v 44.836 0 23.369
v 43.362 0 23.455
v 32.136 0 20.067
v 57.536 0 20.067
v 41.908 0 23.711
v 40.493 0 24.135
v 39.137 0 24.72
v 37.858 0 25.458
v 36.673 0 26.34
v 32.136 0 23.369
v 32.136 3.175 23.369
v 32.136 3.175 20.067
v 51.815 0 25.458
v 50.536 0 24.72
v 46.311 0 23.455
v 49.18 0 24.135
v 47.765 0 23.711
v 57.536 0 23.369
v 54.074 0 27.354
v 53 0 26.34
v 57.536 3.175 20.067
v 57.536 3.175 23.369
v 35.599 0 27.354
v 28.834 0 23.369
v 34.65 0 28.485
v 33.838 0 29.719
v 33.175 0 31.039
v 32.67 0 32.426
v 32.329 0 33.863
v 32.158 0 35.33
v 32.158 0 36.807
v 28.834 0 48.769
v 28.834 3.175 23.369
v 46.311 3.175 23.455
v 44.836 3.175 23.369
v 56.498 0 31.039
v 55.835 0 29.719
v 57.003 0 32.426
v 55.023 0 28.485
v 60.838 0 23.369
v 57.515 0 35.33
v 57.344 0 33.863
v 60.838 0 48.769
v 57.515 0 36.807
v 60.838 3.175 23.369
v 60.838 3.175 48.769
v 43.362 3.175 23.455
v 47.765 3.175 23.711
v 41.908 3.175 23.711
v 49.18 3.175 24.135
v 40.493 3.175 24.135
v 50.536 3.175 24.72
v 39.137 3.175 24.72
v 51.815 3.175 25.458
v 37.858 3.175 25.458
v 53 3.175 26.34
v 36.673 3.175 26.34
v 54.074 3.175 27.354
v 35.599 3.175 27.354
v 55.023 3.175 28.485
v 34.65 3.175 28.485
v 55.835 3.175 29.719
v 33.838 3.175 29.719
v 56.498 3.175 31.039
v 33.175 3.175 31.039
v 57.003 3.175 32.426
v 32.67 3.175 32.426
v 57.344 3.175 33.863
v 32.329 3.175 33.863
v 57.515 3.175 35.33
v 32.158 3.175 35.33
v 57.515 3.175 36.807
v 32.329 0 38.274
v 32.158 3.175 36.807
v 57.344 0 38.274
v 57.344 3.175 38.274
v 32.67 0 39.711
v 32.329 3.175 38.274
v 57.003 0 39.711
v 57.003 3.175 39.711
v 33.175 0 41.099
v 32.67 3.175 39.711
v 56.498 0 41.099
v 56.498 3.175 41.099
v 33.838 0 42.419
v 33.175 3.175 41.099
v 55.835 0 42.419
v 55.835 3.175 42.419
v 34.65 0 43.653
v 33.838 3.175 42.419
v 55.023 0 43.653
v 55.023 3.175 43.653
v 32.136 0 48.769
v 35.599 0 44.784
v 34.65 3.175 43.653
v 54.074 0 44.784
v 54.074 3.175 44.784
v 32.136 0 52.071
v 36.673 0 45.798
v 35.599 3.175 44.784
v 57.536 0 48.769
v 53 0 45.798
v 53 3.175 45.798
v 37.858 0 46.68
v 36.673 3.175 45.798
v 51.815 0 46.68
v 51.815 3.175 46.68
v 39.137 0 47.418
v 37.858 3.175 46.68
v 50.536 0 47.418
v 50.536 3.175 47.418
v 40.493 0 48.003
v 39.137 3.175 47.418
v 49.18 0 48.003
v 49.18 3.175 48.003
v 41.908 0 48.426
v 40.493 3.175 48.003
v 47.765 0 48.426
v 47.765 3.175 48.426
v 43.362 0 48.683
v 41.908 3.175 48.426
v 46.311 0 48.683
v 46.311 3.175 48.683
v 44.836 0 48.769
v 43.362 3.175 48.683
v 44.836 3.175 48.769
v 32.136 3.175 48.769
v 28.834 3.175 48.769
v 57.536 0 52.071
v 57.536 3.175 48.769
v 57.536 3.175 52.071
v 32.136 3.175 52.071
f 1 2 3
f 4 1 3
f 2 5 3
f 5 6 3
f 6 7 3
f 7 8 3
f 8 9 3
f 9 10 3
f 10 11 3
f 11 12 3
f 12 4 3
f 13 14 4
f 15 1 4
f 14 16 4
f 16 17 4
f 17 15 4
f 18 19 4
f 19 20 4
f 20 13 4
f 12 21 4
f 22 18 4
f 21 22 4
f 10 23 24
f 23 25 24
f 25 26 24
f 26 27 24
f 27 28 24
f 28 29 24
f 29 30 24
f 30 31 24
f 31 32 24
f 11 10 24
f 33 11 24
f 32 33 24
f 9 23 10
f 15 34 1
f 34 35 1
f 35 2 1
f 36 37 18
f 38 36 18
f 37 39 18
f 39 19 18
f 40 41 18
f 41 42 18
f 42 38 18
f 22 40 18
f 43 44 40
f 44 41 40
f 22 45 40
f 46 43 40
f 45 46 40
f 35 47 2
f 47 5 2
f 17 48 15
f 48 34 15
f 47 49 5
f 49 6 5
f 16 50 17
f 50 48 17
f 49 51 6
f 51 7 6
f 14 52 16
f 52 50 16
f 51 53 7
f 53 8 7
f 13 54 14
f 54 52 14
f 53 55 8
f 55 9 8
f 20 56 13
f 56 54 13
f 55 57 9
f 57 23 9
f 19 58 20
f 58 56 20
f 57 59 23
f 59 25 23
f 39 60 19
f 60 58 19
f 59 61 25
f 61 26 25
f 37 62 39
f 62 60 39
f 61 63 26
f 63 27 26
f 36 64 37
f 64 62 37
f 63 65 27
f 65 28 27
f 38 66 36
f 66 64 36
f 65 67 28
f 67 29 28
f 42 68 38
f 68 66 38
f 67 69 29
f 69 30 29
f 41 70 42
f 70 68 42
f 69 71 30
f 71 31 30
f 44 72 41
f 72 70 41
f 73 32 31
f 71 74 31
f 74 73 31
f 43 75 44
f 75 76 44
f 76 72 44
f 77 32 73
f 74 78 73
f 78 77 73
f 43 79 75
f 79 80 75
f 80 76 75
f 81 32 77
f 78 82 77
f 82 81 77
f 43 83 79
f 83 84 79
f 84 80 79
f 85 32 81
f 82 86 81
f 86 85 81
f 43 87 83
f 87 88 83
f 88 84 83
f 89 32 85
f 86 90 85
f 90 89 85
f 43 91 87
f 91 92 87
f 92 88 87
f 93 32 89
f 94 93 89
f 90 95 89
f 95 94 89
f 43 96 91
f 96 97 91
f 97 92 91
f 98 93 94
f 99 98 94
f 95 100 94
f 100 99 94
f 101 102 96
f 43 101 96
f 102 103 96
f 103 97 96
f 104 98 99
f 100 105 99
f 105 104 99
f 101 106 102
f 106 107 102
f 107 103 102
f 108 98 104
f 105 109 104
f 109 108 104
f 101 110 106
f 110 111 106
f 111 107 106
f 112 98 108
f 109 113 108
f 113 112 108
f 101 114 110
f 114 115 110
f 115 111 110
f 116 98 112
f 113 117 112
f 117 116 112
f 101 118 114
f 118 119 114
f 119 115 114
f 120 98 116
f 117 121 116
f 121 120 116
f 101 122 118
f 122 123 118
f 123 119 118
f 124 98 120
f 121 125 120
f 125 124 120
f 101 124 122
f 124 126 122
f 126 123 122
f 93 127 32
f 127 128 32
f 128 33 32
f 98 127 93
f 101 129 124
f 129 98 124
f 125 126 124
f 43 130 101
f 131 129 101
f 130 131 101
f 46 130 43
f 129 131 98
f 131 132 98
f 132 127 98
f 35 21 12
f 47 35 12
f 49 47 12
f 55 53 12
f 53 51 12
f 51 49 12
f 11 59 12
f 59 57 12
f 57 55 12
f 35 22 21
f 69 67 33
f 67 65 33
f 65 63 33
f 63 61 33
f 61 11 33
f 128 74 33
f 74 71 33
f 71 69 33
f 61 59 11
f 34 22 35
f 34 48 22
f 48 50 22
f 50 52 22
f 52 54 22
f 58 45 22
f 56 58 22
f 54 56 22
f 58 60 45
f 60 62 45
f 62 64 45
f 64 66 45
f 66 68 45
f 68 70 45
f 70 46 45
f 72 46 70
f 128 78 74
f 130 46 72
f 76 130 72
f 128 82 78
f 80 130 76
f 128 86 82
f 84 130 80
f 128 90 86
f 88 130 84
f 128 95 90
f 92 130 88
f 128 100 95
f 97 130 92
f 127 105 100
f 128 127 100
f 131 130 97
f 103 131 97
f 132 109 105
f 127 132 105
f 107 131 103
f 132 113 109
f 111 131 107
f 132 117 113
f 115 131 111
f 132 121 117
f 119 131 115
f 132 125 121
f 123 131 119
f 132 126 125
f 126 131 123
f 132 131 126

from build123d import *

# Parameters (mm, degrees)
SKETCH2_W                    = 304.8
SKETCH2_H                    = 304.8
BOSS_EXTRUDE1_DEPTH          = 3.175
CUT_EXTRUDE1_DEPTH           = 348.408852067
CUT_EXTRUDE1_DEPTH_BACK      = 348.408852067
SKETCH3_W                    = 304.8
SKETCH3_H                    = 304.8
SKETCH3_R                    = 12.7
SKETCH3_R_2                  = 8.89
BODY_DELETE_KEEP_1_OUTLINE_R = 8.89
BODY_DELETE_KEEP_1_DEPTH     = 3.175


# Read off the part's stored shape, not the designer's step: Body-Delete/Keep 1
with BuildPart() as part:
    # Sketch2 → Boss-Extrude1 (new body)
    with BuildSketch(Plane(origin=(0, 0, 0), x_dir=(1, 0, 0), z_dir=(0, 1, 0))):
        with Locations((-56.763509666, -124.968808797)):
            Rectangle(SKETCH2_W, SKETCH2_H)
    extrude(amount=BOSS_EXTRUDE1_DEPTH)

    # Sketch3 → Cut-Extrude1 (cut, two sides: drawn at the far end of the back side and taken through both)
    # profile 1 of 3: a face of its own
    with BuildSketch(Plane(origin=(0, 3.175, 0), x_dir=(1, 0, 0), z_dir=(0, 1, 0)).offset(-CUT_EXTRUDE1_DEPTH_BACK)):
        with Locations((-56.763509666, -124.968808797)):
            Rectangle(SKETCH3_W, SKETCH3_H)
        Polygon((-188.253637726, -268.695366412), (-192.063637726, -268.695366412), (-192.063637726, -265.393366412), (-198.413637726, -265.393366412), (-188.253637726, -205.195366412), align=None, mode=Mode.SUBTRACT)
        Polygon((-185.713637726, -265.393366412), (-175.553637726, -205.195366412), (-175.553637726, -268.695366412), (-179.363637726, -268.695366412), (-179.363637726, -265.393366412), align=None, mode=Mode.SUBTRACT)
        Polygon((-162.853637726, -268.695366412), (-166.663637726, -268.695366412), (-166.663637726, -265.393366412), (-173.013637726, -265.393366412), (-162.853637726, -205.195366412), align=None, mode=Mode.SUBTRACT)
        Polygon((-150.153637726, -268.695366412), (-153.963637726, -268.695366412), (-153.963637726, -265.393366412), (-160.313637726, -265.393366412), (-150.153637726, -205.195366412), align=None, mode=Mode.SUBTRACT)
        Polygon((-147.613637726, -265.393366412), (-137.453637726, -205.195366412), (-137.453637726, -268.695366412), (-141.263637726, -268.695366412), (-141.263637726, -265.393366412), align=None, mode=Mode.SUBTRACT)
        Polygon((-128.563637726, -265.393366412), (-134.913637726, -265.393366412), (-124.753637726, -205.195366412), (-124.753637726, -268.695366412), (-128.563637726, -268.695366412), align=None, mode=Mode.SUBTRACT)
        Polygon((-122.213637726, -265.393366412), (-112.053637726, -205.195366412), (-112.053637726, -268.695366412), (-115.863637726, -268.695366412), (-115.863637726, -265.393366412), align=None, mode=Mode.SUBTRACT)
        Polygon((-99.353637726, -268.695366412), (-103.163637726, -268.695366412), (-103.163637726, -265.393366412), (-109.513637726, -265.393366412), (-99.353637726, -205.195366412), align=None, mode=Mode.SUBTRACT)
        Polygon((-90.463637726, -268.695366412), (-90.463637726, -265.393366412), (-96.813637726, -265.393366412), (-86.653637726, -205.195366412), (-86.653637726, -268.695366412), align=None, mode=Mode.SUBTRACT)
        Polygon((-84.113637726, -265.393366412), (-73.953637726, -205.195366412), (-73.953637726, -268.695366412), (-77.763637726, -268.695366412), (-77.763637726, -265.393366412), align=None, mode=Mode.SUBTRACT)
        Polygon((-71.413637726, -265.393366412), (-61.253637726, -205.195366412), (-61.253637726, -268.695366412), (-65.063637726, -268.695366412), (-65.063637726, -265.393366412), align=None, mode=Mode.SUBTRACT)
        with BuildLine():
            ThreePointArc((-132.963509666, -135.600090559), (-133.446874634, -138.030130355), (-134.823381605, -140.09021862))
            Line((-134.823381605, -140.09021862), (-188.253637726, -193.520474741))
            ThreePointArc((-188.253637726, -193.520474741), (-190.313725991, -194.896981712), (-192.743765787, -195.38034668))
            Line((-192.743765787, -195.38034668), (-196.463509666, -195.38034668))
            Line((-196.463509666, -195.38034668), (-196.463509666, -131.88034668))
            Line((-196.463509666, -131.88034668), (-132.963509666, -131.88034668))
            Line((-132.963509666, -131.88034668), (-132.963509666, -135.600090559))
        make_face(mode=Mode.SUBTRACT)
        with BuildLine():
            Line((-126.613509666, -195.38034668), (-126.613509666, -131.88034668))
            Line((-126.613509666, -131.88034668), (-63.113509666, -131.88034668))
            Line((-63.113509666, -131.88034668), (-63.113509666, -135.600090559))
            ThreePointArc((-63.113509666, -135.600090559), (-63.596874634, -138.030130355), (-64.973381605, -140.09021862))
            Line((-64.973381605, -140.09021862), (-118.403637726, -193.520474741))
            ThreePointArc((-118.403637726, -193.520474741), (-120.463725991, -194.896981712), (-122.893765787, -195.38034668))
            Line((-122.893765787, -195.38034668), (-126.613509666, -195.38034668))
        make_face(mode=Mode.SUBTRACT)
        Polygon((-52.363637726, -268.695366412), (-52.363637726, -265.393366412), (-58.713637726, -265.393366412), (-48.553637726, -205.195366412), (-48.553637726, -268.695366412), align=None, mode=Mode.SUBTRACT)
        Polygon((-35.853637726, -205.195366412), (-35.853637726, -268.695366412), (-39.663637726, -268.695366412), (-39.663637726, -265.393366412), (-46.013637726, -265.393366412), align=None, mode=Mode.SUBTRACT)
        Polygon((-23.153637726, -205.195366412), (-23.153637726, -268.695366412), (-26.963637726, -268.695366412), (-26.963637726, -265.393366412), (-33.313637726, -265.393366412), align=None, mode=Mode.SUBTRACT)
        Polygon((-20.613637726, -265.393366412), (-10.453637726, -205.195366412), (-10.453637726, -268.695366412), (-14.263637726, -268.695366412), (-14.263637726, -265.393366412), align=None, mode=Mode.SUBTRACT)
        Polygon((-1.563637726, -268.695366412), (-1.563637726, -265.393366412), (-7.913637726, -265.393366412), (2.246362274, -205.195366412), (2.246362274, -268.695366412), align=None, mode=Mode.SUBTRACT)
        with BuildLine():
            Line((-53.043765787, -195.38034668), (-56.763509666, -195.38034668))
            Line((-56.763509666, -195.38034668), (-56.763509666, -131.88034668))
            Line((-56.763509666, -131.88034668), (6.736490334, -131.88034668))
            Line((6.736490334, -131.88034668), (6.736490334, -135.600090559))
            ThreePointArc((6.736490334, -135.600090559), (6.253125366, -138.030130355), (4.876618395, -140.09021862))
            Line((4.876618395, -140.09021862), (-48.553637726, -193.520474741))
            ThreePointArc((-48.553637726, -193.520474741), (-50.613725991, -194.896981712), (-53.043765787, -195.38034668))
        make_face(mode=Mode.SUBTRACT)
        with BuildLine():
            Line((13.086490334, -131.88034668), (76.586490334, -131.88034668))
            Line((76.586490334, -131.88034668), (76.586490334, -135.600090559))
            ThreePointArc((76.586490334, -135.600090559), (76.103125366, -138.030130355), (74.726618395, -140.09021862))
            Line((74.726618395, -140.09021862), (21.296362274, -193.520474741))
            ThreePointArc((21.296362274, -193.520474741), (19.236274009, -194.896981712), (16.806234213, -195.38034668))
            Line((16.806234213, -195.38034668), (13.086490334, -195.38034668))
            Line((13.086490334, -195.38034668), (13.086490334, -131.88034668))
        make_face(mode=Mode.SUBTRACT)
        with BuildLine():
            Line((-196.463509666, -125.53034668), (-196.463509666, -62.03034668))
            Line((-196.463509666, -62.03034668), (-132.963509666, -62.03034668))
            Line((-132.963509666, -62.03034668), (-132.963509666, -65.750090559))
            ThreePointArc((-132.963509666, -65.750090559), (-133.10773728, -67.095783354), (-133.533868437, -68.38034668))
            ThreePointArc((-133.533868437, -68.38034668), (-134.095097913, -69.368194866), (-134.823381605, -70.24021862))
            Line((-134.823381605, -70.24021862), (-188.253637726, -123.670474741))
            ThreePointArc((-188.253637726, -123.670474741), (-189.12566148, -124.398758433), (-190.113509666, -124.959987909))
            ThreePointArc((-190.113509666, -124.959987909), (-191.398072992, -125.386119066), (-192.743765787, -125.53034668))
            Line((-192.743765787, -125.53034668), (-196.463509666, -125.53034668))
        make_face(mode=Mode.SUBTRACT)
        with BuildLine():
            Line((-122.893765787, -125.53034668), (-126.613509666, -125.53034668))
            Line((-126.613509666, -125.53034668), (-126.613509666, -62.03034668))
            Line((-126.613509666, -62.03034668), (-63.113509666, -62.03034668))
            Line((-63.113509666, -62.03034668), (-63.113509666, -65.750090559))
            ThreePointArc((-63.113509666, -65.750090559), (-63.596874634, -68.180130355), (-64.973381605, -70.24021862))
            Line((-64.973381605, -70.24021862), (-118.403637726, -123.670474741))
            ThreePointArc((-118.403637726, -123.670474741), (-120.463725991, -125.046981712), (-122.893765787, -125.53034668))
        make_face(mode=Mode.SUBTRACT)
        Polygon((-196.463509666, -48.768808797), (-196.463509666, 14.731191203), (-192.653509666, 14.731191203), (-192.653509666, 11.429191203), (-186.303509666, 11.429191203), align=None, mode=Mode.SUBTRACT)
        Polygon((-183.763509666, 14.731191203), (-179.953509666, 14.731191203), (-179.953509666, 11.429191203), (-173.603509666, 11.429191203), (-183.763509666, -48.768808797), align=None, mode=Mode.SUBTRACT)
        Polygon((-171.063509666, 14.731191203), (-167.253509666, 14.731191203), (-167.253509666, 11.429191203), (-160.903509666, 11.429191203), (-171.063509666, -48.768808797), align=None, mode=Mode.SUBTRACT)
        Polygon((-158.363509666, 14.731191203), (-154.553509666, 14.731191203), (-154.553509666, 11.429191203), (-148.203509666, 11.429191203), (-158.363509666, -48.768808797), align=None, mode=Mode.SUBTRACT)
        Polygon((-145.663509666, 14.731191203), (-141.853509666, 14.731191203), (-141.853509666, 11.429191203), (-135.503509666, 11.429191203), (-145.663509666, -48.768808797), align=None, mode=Mode.SUBTRACT)
        Polygon((-132.963509666, 14.731191203), (-129.153509666, 14.731191203), (-129.153509666, 11.429191203), (-122.803509666, 11.429191203), (-132.963509666, -48.768808797), align=None, mode=Mode.SUBTRACT)
        Polygon((-120.263509666, 14.731191203), (-116.453509666, 14.731191203), (-116.453509666, 11.429191203), (-110.103509666, 11.429191203), (-120.263509666, -48.768808797), align=None, mode=Mode.SUBTRACT)
        Polygon((-107.563509666, 14.731191203), (-103.753509666, 14.731191203), (-103.753509666, 11.429191203), (-97.403509666, 11.429191203), (-107.563509666, -48.768808797), align=None, mode=Mode.SUBTRACT)
        Polygon((-94.863509666, 14.731191203), (-91.053509666, 14.731191203), (-91.053509666, 11.429191203), (-84.703509666, 11.429191203), (-94.863509666, -48.768808797), align=None, mode=Mode.SUBTRACT)
        Polygon((-82.163509666, 14.731191203), (-78.353509666, 14.731191203), (-78.353509666, 11.429191203), (-72.003509666, 11.429191203), (-82.163509666, -48.768808797), align=None, mode=Mode.SUBTRACT)
        Polygon((-69.463509666, 14.731191203), (-65.653509666, 14.731191203), (-65.653509666, 11.429191203), (-59.303509666, 11.429191203), (-69.463509666, -48.768808797), align=None, mode=Mode.SUBTRACT)
        with BuildLine():
            Line((-53.043765787, -125.53034668), (-56.763509666, -125.53034668))
            Line((-56.763509666, -125.53034668), (-56.763509666, -62.03034668))
            Line((-56.763509666, -62.03034668), (6.736490334, -62.03034668))
            Line((6.736490334, -62.03034668), (6.736490334, -65.750090559))
            ThreePointArc((6.736490334, -65.750090559), (6.253125366, -68.180130355), (4.876618395, -70.24021862))
            Line((4.876618395, -70.24021862), (-48.553637726, -123.670474741))
            ThreePointArc((-48.553637726, -123.670474741), (-50.613725991, -125.046981712), (-53.043765787, -125.53034668))
        make_face(mode=Mode.SUBTRACT)
        with BuildLine():
            Line((16.806234213, -125.53034668), (13.086490334, -125.53034668))
            Line((13.086490334, -125.53034668), (13.086490334, -62.03034668))
            Line((13.086490334, -62.03034668), (76.586490334, -62.03034668))
            Line((76.586490334, -62.03034668), (76.586490334, -65.750090559))
            ThreePointArc((76.586490334, -65.750090559), (76.103125366, -68.180130355), (74.726618395, -70.24021862))
            Line((74.726618395, -70.24021862), (21.296362274, -123.670474741))
            ThreePointArc((21.296362274, -123.670474741), (19.236274009, -125.046981712), (16.806234213, -125.53034668))
        make_face(mode=Mode.SUBTRACT)
        Polygon((-56.763509666, 14.731191203), (-52.953509666, 14.731191203), (-52.953509666, 11.429191203), (-46.603509666, 11.429191203), (-56.763509666, -48.768808797), align=None, mode=Mode.SUBTRACT)
        Polygon((-44.063509666, 14.731191203), (-40.253509666, 14.731191203), (-40.253509666, 11.429191203), (-33.903509666, 11.429191203), (-44.063509666, -48.768808797), align=None, mode=Mode.SUBTRACT)
        Polygon((-31.363509666, 14.731191203), (-27.553509666, 14.731191203), (-27.553509666, 11.429191203), (-21.203509666, 11.429191203), (-31.363509666, -48.768808797), align=None, mode=Mode.SUBTRACT)
        Polygon((-18.663509666, 14.731191203), (-14.853509666, 14.731191203), (-14.853509666, 11.429191203), (-8.503509666, 11.429191203), (-18.663509666, -48.768808797), align=None, mode=Mode.SUBTRACT)
        Polygon((-5.963509666, 14.731191203), (-2.153509666, 14.731191203), (-2.153509666, 11.429191203), (4.196490334, 11.429191203), (-5.963509666, -48.768808797), align=None, mode=Mode.SUBTRACT)
        Polygon((57.536490334, -48.768808797), (57.536490334, -52.070808797), (32.136490334, -52.070808797), (32.136490334, -48.768808797), (28.834490334, -48.768808797), (28.834490334, -23.368808797), (32.136490334, -23.368808797), (32.136490334, -20.066808797), (57.536490334, -20.066808797), (57.536490334, -23.368808797), (60.838490334, -23.368808797), (60.838490334, -48.768808797), align=None, mode=Mode.SUBTRACT)
        Polygon((28.834490334, 14.731191203), (32.136490334, 14.731191203), (32.136490334, 18.033191203), (57.536490334, 18.033191203), (57.536490334, 14.731191203), (60.838490334, 14.731191203), (60.838490334, -10.668808797), (57.536490334, -10.668808797), (57.536490334, -13.970808797), (32.136490334, -13.970808797), (32.136490334, -10.668808797), (28.834490334, -10.668808797), align=None, mode=Mode.SUBTRACT)
    # profile 2 of 3: a face of its own
    with BuildSketch(Plane(origin=(0, 3.175, 0), x_dir=(1, 0, 0), z_dir=(0, 1, 0)).offset(-CUT_EXTRUDE1_DEPTH_BACK)):
        with Locations(Location((44.836490334, -36.068808797, 0), (0, 0, 270))):
            Circle(SKETCH3_R)
    # profile 3 of 3: a face of its own
    with BuildSketch(Plane(origin=(0, 3.175, 0), x_dir=(1, 0, 0), z_dir=(0, 1, 0)).offset(-CUT_EXTRUDE1_DEPTH_BACK)):
        with Locations(Location((44.836490334, 2.031191203, 0), (0, 0, 270))):
            Circle(SKETCH3_R_2)
    extrude(amount=CUT_EXTRUDE1_DEPTH + CUT_EXTRUDE1_DEPTH_BACK, mode=Mode.SUBTRACT)

    # Body-Delete/Keep 1 outline → Body-Delete/Keep 1 (cut)
    # profile 1 of 41: a face of its own
    with BuildSketch(Plane(origin=(0, 0, 0), x_dir=(1, 0, 0), z_dir=(0, 1, 0))):
        Polygon((28.834490334, -10.668808797), (32.136490334, -10.668808797), (32.136490334, -13.970808797), (57.536490334, -13.970808797), (57.536490334, -10.668808797), (60.838490334, -10.668808797), (60.838490334, 14.731191203), (57.536490334, 14.731191203), (57.536490334, 18.033191203), (32.136490334, 18.033191203), (32.136490334, 14.731191203), (28.834490334, 14.731191203), align=None)
        with Locations((44.836490334, 2.031191203)):
            Circle(BODY_DELETE_KEEP_1_OUTLINE_R, mode=Mode.SUBTRACT)
    # profile 2 of 41: a face of its own
    with BuildSketch(Plane(origin=(0, 0, 0), x_dir=(1, 0, 0), z_dir=(0, 1, 0))):
        Polygon((-192.653509666, 11.429191203), (-192.653509666, 14.731191203), (-196.463509666, 14.731191203), (-196.463509666, -48.768808797), (-186.303509666, 11.429191203), align=None)
    # profile 3 of 41: a face of its own
    with BuildSketch(Plane(origin=(0, 0, 0), x_dir=(1, 0, 0), z_dir=(0, 1, 0))):
        Polygon((-2.153509666, 11.429191203), (-2.153509666, 14.731191203), (-5.963509666, 14.731191203), (-5.963509666, -48.768808797), (4.196490334, 11.429191203), align=None)
    # profile 4 of 41: a face of its own
    with BuildSketch(Plane(origin=(0, 0, 0), x_dir=(1, 0, 0), z_dir=(0, 1, 0))):
        Polygon((-27.553509666, 11.429191203), (-27.553509666, 14.731191203), (-31.363509666, 14.731191203), (-31.363509666, -48.768808797), (-21.203509666, 11.429191203), align=None)
    # profile 5 of 41: a face of its own
    with BuildSketch(Plane(origin=(0, 0, 0), x_dir=(1, 0, 0), z_dir=(0, 1, 0))):
        Polygon((-14.853509666, 11.429191203), (-14.853509666, 14.731191203), (-18.663509666, 14.731191203), (-18.663509666, -48.768808797), (-8.503509666, 11.429191203), align=None)
    # profile 6 of 41: a face of its own
    with BuildSketch(Plane(origin=(0, 0, 0), x_dir=(1, 0, 0), z_dir=(0, 1, 0))):
        Polygon((-65.653509666, 11.429191203), (-65.653509666, 14.731191203), (-69.463509666, 14.731191203), (-69.463509666, -48.768808797), (-59.303509666, 11.429191203), align=None)
    # profile 7 of 41: a face of its own
    with BuildSketch(Plane(origin=(0, 0, 0), x_dir=(1, 0, 0), z_dir=(0, 1, 0))):
        Polygon((-91.053509666, 11.429191203), (-91.053509666, 14.731191203), (-94.863509666, 14.731191203), (-94.863509666, -48.768808797), (-84.703509666, 11.429191203), align=None)
    # profile 8 of 41: a face of its own
    with BuildSketch(Plane(origin=(0, 0, 0), x_dir=(1, 0, 0), z_dir=(0, 1, 0))):
        Polygon((-40.253509666, 11.429191203), (-40.253509666, 14.731191203), (-44.063509666, 14.731191203), (-44.063509666, -48.768808797), (-33.903509666, 11.429191203), align=None)
    # profile 9 of 41: a face of its own
    with BuildSketch(Plane(origin=(0, 0, 0), x_dir=(1, 0, 0), z_dir=(0, 1, 0))):
        Polygon((-52.953509666, 11.429191203), (-52.953509666, 14.731191203), (-56.763509666, 14.731191203), (-56.763509666, -48.768808797), (-46.603509666, 11.429191203), align=None)
    # profile 10 of 41: a face of its own
    with BuildSketch(Plane(origin=(0, 0, 0), x_dir=(1, 0, 0), z_dir=(0, 1, 0))):
        Polygon((-141.853509666, 11.429191203), (-141.853509666, 14.731191203), (-145.663509666, 14.731191203), (-145.663509666, -48.768808797), (-135.503509666, 11.429191203), align=None)
    # profile 11 of 41: a face of its own
    with BuildSketch(Plane(origin=(0, 0, 0), x_dir=(1, 0, 0), z_dir=(0, 1, 0))):
        Polygon((-154.553509666, 11.429191203), (-154.553509666, 14.731191203), (-158.363509666, 14.731191203), (-158.363509666, -48.768808797), (-148.203509666, 11.429191203), align=None)
    # profile 12 of 41: a face of its own
    with BuildSketch(Plane(origin=(0, 0, 0), x_dir=(1, 0, 0), z_dir=(0, 1, 0))):
        Polygon((-167.253509666, 11.429191203), (-167.253509666, 14.731191203), (-171.063509666, 14.731191203), (-171.063509666, -48.768808797), (-160.903509666, 11.429191203), align=None)
    # profile 13 of 41: a face of its own
    with BuildSketch(Plane(origin=(0, 0, 0), x_dir=(1, 0, 0), z_dir=(0, 1, 0))):
        Polygon((-78.353509666, 11.429191203), (-78.353509666, 14.731191203), (-82.163509666, 14.731191203), (-82.163509666, -48.768808797), (-72.003509666, 11.429191203), align=None)
    # profile 14 of 41: a face of its own
    with BuildSketch(Plane(origin=(0, 0, 0), x_dir=(1, 0, 0), z_dir=(0, 1, 0))):
        Polygon((-179.953509666, 11.429191203), (-179.953509666, 14.731191203), (-183.763509666, 14.731191203), (-183.763509666, -48.768808797), (-173.603509666, 11.429191203), align=None)
    # profile 15 of 41: a face of its own
    with BuildSketch(Plane(origin=(0, 0, 0), x_dir=(1, 0, 0), z_dir=(0, 1, 0))):
        Polygon((-103.753509666, 11.429191203), (-103.753509666, 14.731191203), (-107.563509666, 14.731191203), (-107.563509666, -48.768808797), (-97.403509666, 11.429191203), align=None)
    # profile 16 of 41: a face of its own
    with BuildSketch(Plane(origin=(0, 0, 0), x_dir=(1, 0, 0), z_dir=(0, 1, 0))):
        Polygon((-116.453509666, 11.429191203), (-116.453509666, 14.731191203), (-120.263509666, 14.731191203), (-120.263509666, -48.768808797), (-110.103509666, 11.429191203), align=None)
    # profile 17 of 41: a face of its own
    with BuildSketch(Plane(origin=(0, 0, 0), x_dir=(1, 0, 0), z_dir=(0, 1, 0))):
        Polygon((-129.153509666, 11.429191203), (-129.153509666, 14.731191203), (-132.963509666, 14.731191203), (-132.963509666, -48.768808797), (-122.803509666, 11.429191203), align=None)
    # profile 18 of 41: a face of its own
    with BuildSketch(Plane(origin=(0, 0, 0), x_dir=(1, 0, 0), z_dir=(0, 1, 0))):
        Polygon((-71.413637726, -265.393366412), (-65.063637726, -265.393366412), (-65.063637726, -268.695366412), (-61.253637726, -268.695366412), (-61.253637726, -205.195366412), align=None)
    # profile 19 of 41: a face of its own
    with BuildSketch(Plane(origin=(0, 0, 0), x_dir=(1, 0, 0), z_dir=(0, 1, 0))):
        Polygon((-124.753637726, -205.195366412), (-134.913637726, -265.393366412), (-128.563637726, -265.393366412), (-128.563637726, -268.695366412), (-124.753637726, -268.695366412), align=None)
    # profile 20 of 41: a face of its own
    with BuildSketch(Plane(origin=(0, 0, 0), x_dir=(1, 0, 0), z_dir=(0, 1, 0))):
        Polygon((-23.153637726, -205.195366412), (-33.313637726, -265.393366412), (-26.963637726, -265.393366412), (-26.963637726, -268.695366412), (-23.153637726, -268.695366412), align=None)
    # profile 21 of 41: a face of its own
    with BuildSketch(Plane(origin=(0, 0, 0), x_dir=(1, 0, 0), z_dir=(0, 1, 0))):
        Polygon((-35.853637726, -205.195366412), (-46.013637726, -265.393366412), (-39.663637726, -265.393366412), (-39.663637726, -268.695366412), (-35.853637726, -268.695366412), align=None)
    # profile 22 of 41: a face of its own
    with BuildSketch(Plane(origin=(0, 0, 0), x_dir=(1, 0, 0), z_dir=(0, 1, 0))):
        Polygon((-73.953637726, -205.195366412), (-84.113637726, -265.393366412), (-77.763637726, -265.393366412), (-77.763637726, -268.695366412), (-73.953637726, -268.695366412), align=None)
    # profile 23 of 41: a face of its own
    with BuildSketch(Plane(origin=(0, 0, 0), x_dir=(1, 0, 0), z_dir=(0, 1, 0))):
        Polygon((-162.853637726, -205.195366412), (-173.013637726, -265.393366412), (-166.663637726, -265.393366412), (-166.663637726, -268.695366412), (-162.853637726, -268.695366412), align=None)
    # profile 24 of 41: a face of its own
    with BuildSketch(Plane(origin=(0, 0, 0), x_dir=(1, 0, 0), z_dir=(0, 1, 0))):
        Polygon((-188.253637726, -205.195366412), (-198.413637726, -265.393366412), (-192.063637726, -265.393366412), (-192.063637726, -268.695366412), (-188.253637726, -268.695366412), align=None)
    # profile 25 of 41: a face of its own
    with BuildSketch(Plane(origin=(0, 0, 0), x_dir=(1, 0, 0), z_dir=(0, 1, 0))):
        Polygon((-175.553637726, -205.195366412), (-185.713637726, -265.393366412), (-179.363637726, -265.393366412), (-179.363637726, -268.695366412), (-175.553637726, -268.695366412), align=None)
    # profile 26 of 41: a face of its own
    with BuildSketch(Plane(origin=(0, 0, 0), x_dir=(1, 0, 0), z_dir=(0, 1, 0))):
        Polygon((-150.153637726, -205.195366412), (-160.313637726, -265.393366412), (-153.963637726, -265.393366412), (-153.963637726, -268.695366412), (-150.153637726, -268.695366412), align=None)
    # profile 27 of 41: a face of its own
    with BuildSketch(Plane(origin=(0, 0, 0), x_dir=(1, 0, 0), z_dir=(0, 1, 0))):
        Polygon((-86.653637726, -205.195366412), (-96.813637726, -265.393366412), (-90.463637726, -265.393366412), (-90.463637726, -268.695366412), (-86.653637726, -268.695366412), align=None)
    # profile 28 of 41: a face of its own
    with BuildSketch(Plane(origin=(0, 0, 0), x_dir=(1, 0, 0), z_dir=(0, 1, 0))):
        Polygon((2.246362274, -205.195366412), (-7.913637726, -265.393366412), (-1.563637726, -265.393366412), (-1.563637726, -268.695366412), (2.246362274, -268.695366412), align=None)
    # profile 29 of 41: a face of its own
    with BuildSketch(Plane(origin=(0, 0, 0), x_dir=(1, 0, 0), z_dir=(0, 1, 0))):
        Polygon((-137.453637726, -205.195366412), (-147.613637726, -265.393366412), (-141.263637726, -265.393366412), (-141.263637726, -268.695366412), (-137.453637726, -268.695366412), align=None)
    # profile 30 of 41: a face of its own
    with BuildSketch(Plane(origin=(0, 0, 0), x_dir=(1, 0, 0), z_dir=(0, 1, 0))):
        Polygon((-48.553637726, -205.195366412), (-58.713637726, -265.393366412), (-52.363637726, -265.393366412), (-52.363637726, -268.695366412), (-48.553637726, -268.695366412), align=None)
    # profile 31 of 41: a face of its own
    with BuildSketch(Plane(origin=(0, 0, 0), x_dir=(1, 0, 0), z_dir=(0, 1, 0))):
        Polygon((-10.453637726, -205.195366412), (-20.613637726, -265.393366412), (-14.263637726, -265.393366412), (-14.263637726, -268.695366412), (-10.453637726, -268.695366412), align=None)
    # profile 32 of 41: a face of its own
    with BuildSketch(Plane(origin=(0, 0, 0), x_dir=(1, 0, 0), z_dir=(0, 1, 0))):
        Polygon((-99.353637726, -205.195366412), (-109.513637726, -265.393366412), (-103.163637726, -265.393366412), (-103.163637726, -268.695366412), (-99.353637726, -268.695366412), align=None)
    # profile 33 of 41: a face of its own
    with BuildSketch(Plane(origin=(0, 0, 0), x_dir=(1, 0, 0), z_dir=(0, 1, 0))):
        Polygon((-112.053637726, -205.195366412), (-122.213637726, -265.393366412), (-115.863637726, -265.393366412), (-115.863637726, -268.695366412), (-112.053637726, -268.695366412), align=None)
    # profile 34 of 41: a face of its own
    with BuildSketch(Plane(origin=(0, 0, 0), x_dir=(1, 0, 0), z_dir=(0, 1, 0))):
        with BuildLine():
            Line((-132.963509666, -62.03034668), (-196.463509666, -62.03034668))
            Line((-196.463509666, -62.03034668), (-196.463509666, -125.53034668))
            Line((-196.463509666, -125.53034668), (-192.743765787, -125.53034668))
            ThreePointArc((-192.743765787, -125.53034668), (-190.313725991, -125.046981712), (-188.253637726, -123.670474741))
            Line((-188.253637726, -123.670474741), (-134.823381605, -70.24021862))
            ThreePointArc((-134.823381605, -70.24021862), (-133.446874634, -68.180130355), (-132.963509666, -65.750090559))
            Line((-132.963509666, -65.750090559), (-132.963509666, -62.03034668))
        make_face()
    # profile 35 of 41: a face of its own
    with BuildSketch(Plane(origin=(0, 0, 0), x_dir=(1, 0, 0), z_dir=(0, 1, 0))):
        with BuildLine():
            Line((-132.963509666, -131.88034668), (-196.463509666, -131.88034668))
            Line((-196.463509666, -131.88034668), (-196.463509666, -195.38034668))
            Line((-196.463509666, -195.38034668), (-192.743765787, -195.38034668))
            ThreePointArc((-192.743765787, -195.38034668), (-190.313725991, -194.896981712), (-188.253637726, -193.520474741))
            Line((-188.253637726, -193.520474741), (-134.823381605, -140.09021862))
            ThreePointArc((-134.823381605, -140.09021862), (-133.446874634, -138.030130355), (-132.963509666, -135.600090559))
            Line((-132.963509666, -135.600090559), (-132.963509666, -131.88034668))
        make_face()
    # profile 36 of 41: a face of its own
    with BuildSketch(Plane(origin=(0, 0, 0), x_dir=(1, 0, 0), z_dir=(0, 1, 0))):
        with BuildLine():
            Line((6.736490334, -131.88034668), (-56.763509666, -131.88034668))
            Line((-56.763509666, -131.88034668), (-56.763509666, -195.38034668))
            Line((-56.763509666, -195.38034668), (-53.043765787, -195.38034668))
            ThreePointArc((-53.043765787, -195.38034668), (-50.613725991, -194.896981712), (-48.553637726, -193.520474741))
            Line((-48.553637726, -193.520474741), (4.876618395, -140.09021862))
            ThreePointArc((4.876618395, -140.09021862), (6.253125366, -138.030130355), (6.736490334, -135.600090559))
            Line((6.736490334, -135.600090559), (6.736490334, -131.88034668))
        make_face()
    # profile 37 of 41: a face of its own
    with BuildSketch(Plane(origin=(0, 0, 0), x_dir=(1, 0, 0), z_dir=(0, 1, 0))):
        with BuildLine():
            Line((6.736490334, -62.03034668), (-56.763509666, -62.03034668))
            Line((-56.763509666, -62.03034668), (-56.763509666, -125.53034668))
            Line((-56.763509666, -125.53034668), (-53.043765787, -125.53034668))
            ThreePointArc((-53.043765787, -125.53034668), (-50.613725991, -125.046981712), (-48.553637726, -123.670474741))
            Line((-48.553637726, -123.670474741), (4.876618395, -70.24021862))
            ThreePointArc((4.876618395, -70.24021862), (6.253125366, -68.180130355), (6.736490334, -65.750090559))
            Line((6.736490334, -65.750090559), (6.736490334, -62.03034668))
        make_face()
    # profile 38 of 41: a face of its own
    with BuildSketch(Plane(origin=(0, 0, 0), x_dir=(1, 0, 0), z_dir=(0, 1, 0))):
        with BuildLine():
            Line((21.296362274, -193.520474741), (74.726618395, -140.09021862))
            ThreePointArc((74.726618395, -140.09021862), (76.103125366, -138.030130355), (76.586490334, -135.600090559))
            Line((76.586490334, -135.600090559), (76.586490334, -131.88034668))
            Line((76.586490334, -131.88034668), (13.086490334, -131.88034668))
            Line((13.086490334, -131.88034668), (13.086490334, -195.38034668))
            Line((13.086490334, -195.38034668), (16.806234213, -195.38034668))
            ThreePointArc((16.806234213, -195.38034668), (19.236274009, -194.896981712), (21.296362274, -193.520474741))
        make_face()
    # profile 39 of 41: a face of its own
    with BuildSketch(Plane(origin=(0, 0, 0), x_dir=(1, 0, 0), z_dir=(0, 1, 0))):
        with BuildLine():
            Line((-126.613509666, -131.88034668), (-126.613509666, -195.38034668))
            Line((-126.613509666, -195.38034668), (-122.893765787, -195.38034668))
            ThreePointArc((-122.893765787, -195.38034668), (-120.463725991, -194.896981712), (-118.403637726, -193.520474741))
            Line((-118.403637726, -193.520474741), (-64.973381605, -140.09021862))
            ThreePointArc((-64.973381605, -140.09021862), (-63.596874634, -138.030130355), (-63.113509666, -135.600090559))
            Line((-63.113509666, -135.600090559), (-63.113509666, -131.88034668))
            Line((-63.113509666, -131.88034668), (-126.613509666, -131.88034668))
        make_face()
    # profile 40 of 41: a face of its own
    with BuildSketch(Plane(origin=(0, 0, 0), x_dir=(1, 0, 0), z_dir=(0, 1, 0))):
        with BuildLine():
            Line((76.586490334, -62.03034668), (13.086490334, -62.03034668))
            Line((13.086490334, -62.03034668), (13.086490334, -125.53034668))
            Line((13.086490334, -125.53034668), (16.806234213, -125.53034668))
            ThreePointArc((16.806234213, -125.53034668), (19.236274009, -125.046981712), (21.296362274, -123.670474741))
            Line((21.296362274, -123.670474741), (74.726618395, -70.24021862))
            ThreePointArc((74.726618395, -70.24021862), (76.103125366, -68.180130355), (76.586490334, -65.750090559))
            Line((76.586490334, -65.750090559), (76.586490334, -62.03034668))
        make_face()
    # profile 41 of 41: a face of its own
    with BuildSketch(Plane(origin=(0, 0, 0), x_dir=(1, 0, 0), z_dir=(0, 1, 0))):
        with BuildLine():
            Line((-126.613509666, -62.03034668), (-126.613509666, -125.53034668))
            Line((-126.613509666, -125.53034668), (-122.893765787, -125.53034668))
            ThreePointArc((-122.893765787, -125.53034668), (-120.463725991, -125.046981712), (-118.403637726, -123.670474741))
            Line((-118.403637726, -123.670474741), (-64.973381605, -70.24021862))
            ThreePointArc((-64.973381605, -70.24021862), (-63.596874634, -68.180130355), (-63.113509666, -65.750090559))
            Line((-63.113509666, -65.750090559), (-63.113509666, -62.03034668))
            Line((-63.113509666, -62.03034668), (-126.613509666, -62.03034668))
        make_face()
    extrude(amount=BODY_DELETE_KEEP_1_DEPTH, mode=Mode.SUBTRACT)


solid = part.part
